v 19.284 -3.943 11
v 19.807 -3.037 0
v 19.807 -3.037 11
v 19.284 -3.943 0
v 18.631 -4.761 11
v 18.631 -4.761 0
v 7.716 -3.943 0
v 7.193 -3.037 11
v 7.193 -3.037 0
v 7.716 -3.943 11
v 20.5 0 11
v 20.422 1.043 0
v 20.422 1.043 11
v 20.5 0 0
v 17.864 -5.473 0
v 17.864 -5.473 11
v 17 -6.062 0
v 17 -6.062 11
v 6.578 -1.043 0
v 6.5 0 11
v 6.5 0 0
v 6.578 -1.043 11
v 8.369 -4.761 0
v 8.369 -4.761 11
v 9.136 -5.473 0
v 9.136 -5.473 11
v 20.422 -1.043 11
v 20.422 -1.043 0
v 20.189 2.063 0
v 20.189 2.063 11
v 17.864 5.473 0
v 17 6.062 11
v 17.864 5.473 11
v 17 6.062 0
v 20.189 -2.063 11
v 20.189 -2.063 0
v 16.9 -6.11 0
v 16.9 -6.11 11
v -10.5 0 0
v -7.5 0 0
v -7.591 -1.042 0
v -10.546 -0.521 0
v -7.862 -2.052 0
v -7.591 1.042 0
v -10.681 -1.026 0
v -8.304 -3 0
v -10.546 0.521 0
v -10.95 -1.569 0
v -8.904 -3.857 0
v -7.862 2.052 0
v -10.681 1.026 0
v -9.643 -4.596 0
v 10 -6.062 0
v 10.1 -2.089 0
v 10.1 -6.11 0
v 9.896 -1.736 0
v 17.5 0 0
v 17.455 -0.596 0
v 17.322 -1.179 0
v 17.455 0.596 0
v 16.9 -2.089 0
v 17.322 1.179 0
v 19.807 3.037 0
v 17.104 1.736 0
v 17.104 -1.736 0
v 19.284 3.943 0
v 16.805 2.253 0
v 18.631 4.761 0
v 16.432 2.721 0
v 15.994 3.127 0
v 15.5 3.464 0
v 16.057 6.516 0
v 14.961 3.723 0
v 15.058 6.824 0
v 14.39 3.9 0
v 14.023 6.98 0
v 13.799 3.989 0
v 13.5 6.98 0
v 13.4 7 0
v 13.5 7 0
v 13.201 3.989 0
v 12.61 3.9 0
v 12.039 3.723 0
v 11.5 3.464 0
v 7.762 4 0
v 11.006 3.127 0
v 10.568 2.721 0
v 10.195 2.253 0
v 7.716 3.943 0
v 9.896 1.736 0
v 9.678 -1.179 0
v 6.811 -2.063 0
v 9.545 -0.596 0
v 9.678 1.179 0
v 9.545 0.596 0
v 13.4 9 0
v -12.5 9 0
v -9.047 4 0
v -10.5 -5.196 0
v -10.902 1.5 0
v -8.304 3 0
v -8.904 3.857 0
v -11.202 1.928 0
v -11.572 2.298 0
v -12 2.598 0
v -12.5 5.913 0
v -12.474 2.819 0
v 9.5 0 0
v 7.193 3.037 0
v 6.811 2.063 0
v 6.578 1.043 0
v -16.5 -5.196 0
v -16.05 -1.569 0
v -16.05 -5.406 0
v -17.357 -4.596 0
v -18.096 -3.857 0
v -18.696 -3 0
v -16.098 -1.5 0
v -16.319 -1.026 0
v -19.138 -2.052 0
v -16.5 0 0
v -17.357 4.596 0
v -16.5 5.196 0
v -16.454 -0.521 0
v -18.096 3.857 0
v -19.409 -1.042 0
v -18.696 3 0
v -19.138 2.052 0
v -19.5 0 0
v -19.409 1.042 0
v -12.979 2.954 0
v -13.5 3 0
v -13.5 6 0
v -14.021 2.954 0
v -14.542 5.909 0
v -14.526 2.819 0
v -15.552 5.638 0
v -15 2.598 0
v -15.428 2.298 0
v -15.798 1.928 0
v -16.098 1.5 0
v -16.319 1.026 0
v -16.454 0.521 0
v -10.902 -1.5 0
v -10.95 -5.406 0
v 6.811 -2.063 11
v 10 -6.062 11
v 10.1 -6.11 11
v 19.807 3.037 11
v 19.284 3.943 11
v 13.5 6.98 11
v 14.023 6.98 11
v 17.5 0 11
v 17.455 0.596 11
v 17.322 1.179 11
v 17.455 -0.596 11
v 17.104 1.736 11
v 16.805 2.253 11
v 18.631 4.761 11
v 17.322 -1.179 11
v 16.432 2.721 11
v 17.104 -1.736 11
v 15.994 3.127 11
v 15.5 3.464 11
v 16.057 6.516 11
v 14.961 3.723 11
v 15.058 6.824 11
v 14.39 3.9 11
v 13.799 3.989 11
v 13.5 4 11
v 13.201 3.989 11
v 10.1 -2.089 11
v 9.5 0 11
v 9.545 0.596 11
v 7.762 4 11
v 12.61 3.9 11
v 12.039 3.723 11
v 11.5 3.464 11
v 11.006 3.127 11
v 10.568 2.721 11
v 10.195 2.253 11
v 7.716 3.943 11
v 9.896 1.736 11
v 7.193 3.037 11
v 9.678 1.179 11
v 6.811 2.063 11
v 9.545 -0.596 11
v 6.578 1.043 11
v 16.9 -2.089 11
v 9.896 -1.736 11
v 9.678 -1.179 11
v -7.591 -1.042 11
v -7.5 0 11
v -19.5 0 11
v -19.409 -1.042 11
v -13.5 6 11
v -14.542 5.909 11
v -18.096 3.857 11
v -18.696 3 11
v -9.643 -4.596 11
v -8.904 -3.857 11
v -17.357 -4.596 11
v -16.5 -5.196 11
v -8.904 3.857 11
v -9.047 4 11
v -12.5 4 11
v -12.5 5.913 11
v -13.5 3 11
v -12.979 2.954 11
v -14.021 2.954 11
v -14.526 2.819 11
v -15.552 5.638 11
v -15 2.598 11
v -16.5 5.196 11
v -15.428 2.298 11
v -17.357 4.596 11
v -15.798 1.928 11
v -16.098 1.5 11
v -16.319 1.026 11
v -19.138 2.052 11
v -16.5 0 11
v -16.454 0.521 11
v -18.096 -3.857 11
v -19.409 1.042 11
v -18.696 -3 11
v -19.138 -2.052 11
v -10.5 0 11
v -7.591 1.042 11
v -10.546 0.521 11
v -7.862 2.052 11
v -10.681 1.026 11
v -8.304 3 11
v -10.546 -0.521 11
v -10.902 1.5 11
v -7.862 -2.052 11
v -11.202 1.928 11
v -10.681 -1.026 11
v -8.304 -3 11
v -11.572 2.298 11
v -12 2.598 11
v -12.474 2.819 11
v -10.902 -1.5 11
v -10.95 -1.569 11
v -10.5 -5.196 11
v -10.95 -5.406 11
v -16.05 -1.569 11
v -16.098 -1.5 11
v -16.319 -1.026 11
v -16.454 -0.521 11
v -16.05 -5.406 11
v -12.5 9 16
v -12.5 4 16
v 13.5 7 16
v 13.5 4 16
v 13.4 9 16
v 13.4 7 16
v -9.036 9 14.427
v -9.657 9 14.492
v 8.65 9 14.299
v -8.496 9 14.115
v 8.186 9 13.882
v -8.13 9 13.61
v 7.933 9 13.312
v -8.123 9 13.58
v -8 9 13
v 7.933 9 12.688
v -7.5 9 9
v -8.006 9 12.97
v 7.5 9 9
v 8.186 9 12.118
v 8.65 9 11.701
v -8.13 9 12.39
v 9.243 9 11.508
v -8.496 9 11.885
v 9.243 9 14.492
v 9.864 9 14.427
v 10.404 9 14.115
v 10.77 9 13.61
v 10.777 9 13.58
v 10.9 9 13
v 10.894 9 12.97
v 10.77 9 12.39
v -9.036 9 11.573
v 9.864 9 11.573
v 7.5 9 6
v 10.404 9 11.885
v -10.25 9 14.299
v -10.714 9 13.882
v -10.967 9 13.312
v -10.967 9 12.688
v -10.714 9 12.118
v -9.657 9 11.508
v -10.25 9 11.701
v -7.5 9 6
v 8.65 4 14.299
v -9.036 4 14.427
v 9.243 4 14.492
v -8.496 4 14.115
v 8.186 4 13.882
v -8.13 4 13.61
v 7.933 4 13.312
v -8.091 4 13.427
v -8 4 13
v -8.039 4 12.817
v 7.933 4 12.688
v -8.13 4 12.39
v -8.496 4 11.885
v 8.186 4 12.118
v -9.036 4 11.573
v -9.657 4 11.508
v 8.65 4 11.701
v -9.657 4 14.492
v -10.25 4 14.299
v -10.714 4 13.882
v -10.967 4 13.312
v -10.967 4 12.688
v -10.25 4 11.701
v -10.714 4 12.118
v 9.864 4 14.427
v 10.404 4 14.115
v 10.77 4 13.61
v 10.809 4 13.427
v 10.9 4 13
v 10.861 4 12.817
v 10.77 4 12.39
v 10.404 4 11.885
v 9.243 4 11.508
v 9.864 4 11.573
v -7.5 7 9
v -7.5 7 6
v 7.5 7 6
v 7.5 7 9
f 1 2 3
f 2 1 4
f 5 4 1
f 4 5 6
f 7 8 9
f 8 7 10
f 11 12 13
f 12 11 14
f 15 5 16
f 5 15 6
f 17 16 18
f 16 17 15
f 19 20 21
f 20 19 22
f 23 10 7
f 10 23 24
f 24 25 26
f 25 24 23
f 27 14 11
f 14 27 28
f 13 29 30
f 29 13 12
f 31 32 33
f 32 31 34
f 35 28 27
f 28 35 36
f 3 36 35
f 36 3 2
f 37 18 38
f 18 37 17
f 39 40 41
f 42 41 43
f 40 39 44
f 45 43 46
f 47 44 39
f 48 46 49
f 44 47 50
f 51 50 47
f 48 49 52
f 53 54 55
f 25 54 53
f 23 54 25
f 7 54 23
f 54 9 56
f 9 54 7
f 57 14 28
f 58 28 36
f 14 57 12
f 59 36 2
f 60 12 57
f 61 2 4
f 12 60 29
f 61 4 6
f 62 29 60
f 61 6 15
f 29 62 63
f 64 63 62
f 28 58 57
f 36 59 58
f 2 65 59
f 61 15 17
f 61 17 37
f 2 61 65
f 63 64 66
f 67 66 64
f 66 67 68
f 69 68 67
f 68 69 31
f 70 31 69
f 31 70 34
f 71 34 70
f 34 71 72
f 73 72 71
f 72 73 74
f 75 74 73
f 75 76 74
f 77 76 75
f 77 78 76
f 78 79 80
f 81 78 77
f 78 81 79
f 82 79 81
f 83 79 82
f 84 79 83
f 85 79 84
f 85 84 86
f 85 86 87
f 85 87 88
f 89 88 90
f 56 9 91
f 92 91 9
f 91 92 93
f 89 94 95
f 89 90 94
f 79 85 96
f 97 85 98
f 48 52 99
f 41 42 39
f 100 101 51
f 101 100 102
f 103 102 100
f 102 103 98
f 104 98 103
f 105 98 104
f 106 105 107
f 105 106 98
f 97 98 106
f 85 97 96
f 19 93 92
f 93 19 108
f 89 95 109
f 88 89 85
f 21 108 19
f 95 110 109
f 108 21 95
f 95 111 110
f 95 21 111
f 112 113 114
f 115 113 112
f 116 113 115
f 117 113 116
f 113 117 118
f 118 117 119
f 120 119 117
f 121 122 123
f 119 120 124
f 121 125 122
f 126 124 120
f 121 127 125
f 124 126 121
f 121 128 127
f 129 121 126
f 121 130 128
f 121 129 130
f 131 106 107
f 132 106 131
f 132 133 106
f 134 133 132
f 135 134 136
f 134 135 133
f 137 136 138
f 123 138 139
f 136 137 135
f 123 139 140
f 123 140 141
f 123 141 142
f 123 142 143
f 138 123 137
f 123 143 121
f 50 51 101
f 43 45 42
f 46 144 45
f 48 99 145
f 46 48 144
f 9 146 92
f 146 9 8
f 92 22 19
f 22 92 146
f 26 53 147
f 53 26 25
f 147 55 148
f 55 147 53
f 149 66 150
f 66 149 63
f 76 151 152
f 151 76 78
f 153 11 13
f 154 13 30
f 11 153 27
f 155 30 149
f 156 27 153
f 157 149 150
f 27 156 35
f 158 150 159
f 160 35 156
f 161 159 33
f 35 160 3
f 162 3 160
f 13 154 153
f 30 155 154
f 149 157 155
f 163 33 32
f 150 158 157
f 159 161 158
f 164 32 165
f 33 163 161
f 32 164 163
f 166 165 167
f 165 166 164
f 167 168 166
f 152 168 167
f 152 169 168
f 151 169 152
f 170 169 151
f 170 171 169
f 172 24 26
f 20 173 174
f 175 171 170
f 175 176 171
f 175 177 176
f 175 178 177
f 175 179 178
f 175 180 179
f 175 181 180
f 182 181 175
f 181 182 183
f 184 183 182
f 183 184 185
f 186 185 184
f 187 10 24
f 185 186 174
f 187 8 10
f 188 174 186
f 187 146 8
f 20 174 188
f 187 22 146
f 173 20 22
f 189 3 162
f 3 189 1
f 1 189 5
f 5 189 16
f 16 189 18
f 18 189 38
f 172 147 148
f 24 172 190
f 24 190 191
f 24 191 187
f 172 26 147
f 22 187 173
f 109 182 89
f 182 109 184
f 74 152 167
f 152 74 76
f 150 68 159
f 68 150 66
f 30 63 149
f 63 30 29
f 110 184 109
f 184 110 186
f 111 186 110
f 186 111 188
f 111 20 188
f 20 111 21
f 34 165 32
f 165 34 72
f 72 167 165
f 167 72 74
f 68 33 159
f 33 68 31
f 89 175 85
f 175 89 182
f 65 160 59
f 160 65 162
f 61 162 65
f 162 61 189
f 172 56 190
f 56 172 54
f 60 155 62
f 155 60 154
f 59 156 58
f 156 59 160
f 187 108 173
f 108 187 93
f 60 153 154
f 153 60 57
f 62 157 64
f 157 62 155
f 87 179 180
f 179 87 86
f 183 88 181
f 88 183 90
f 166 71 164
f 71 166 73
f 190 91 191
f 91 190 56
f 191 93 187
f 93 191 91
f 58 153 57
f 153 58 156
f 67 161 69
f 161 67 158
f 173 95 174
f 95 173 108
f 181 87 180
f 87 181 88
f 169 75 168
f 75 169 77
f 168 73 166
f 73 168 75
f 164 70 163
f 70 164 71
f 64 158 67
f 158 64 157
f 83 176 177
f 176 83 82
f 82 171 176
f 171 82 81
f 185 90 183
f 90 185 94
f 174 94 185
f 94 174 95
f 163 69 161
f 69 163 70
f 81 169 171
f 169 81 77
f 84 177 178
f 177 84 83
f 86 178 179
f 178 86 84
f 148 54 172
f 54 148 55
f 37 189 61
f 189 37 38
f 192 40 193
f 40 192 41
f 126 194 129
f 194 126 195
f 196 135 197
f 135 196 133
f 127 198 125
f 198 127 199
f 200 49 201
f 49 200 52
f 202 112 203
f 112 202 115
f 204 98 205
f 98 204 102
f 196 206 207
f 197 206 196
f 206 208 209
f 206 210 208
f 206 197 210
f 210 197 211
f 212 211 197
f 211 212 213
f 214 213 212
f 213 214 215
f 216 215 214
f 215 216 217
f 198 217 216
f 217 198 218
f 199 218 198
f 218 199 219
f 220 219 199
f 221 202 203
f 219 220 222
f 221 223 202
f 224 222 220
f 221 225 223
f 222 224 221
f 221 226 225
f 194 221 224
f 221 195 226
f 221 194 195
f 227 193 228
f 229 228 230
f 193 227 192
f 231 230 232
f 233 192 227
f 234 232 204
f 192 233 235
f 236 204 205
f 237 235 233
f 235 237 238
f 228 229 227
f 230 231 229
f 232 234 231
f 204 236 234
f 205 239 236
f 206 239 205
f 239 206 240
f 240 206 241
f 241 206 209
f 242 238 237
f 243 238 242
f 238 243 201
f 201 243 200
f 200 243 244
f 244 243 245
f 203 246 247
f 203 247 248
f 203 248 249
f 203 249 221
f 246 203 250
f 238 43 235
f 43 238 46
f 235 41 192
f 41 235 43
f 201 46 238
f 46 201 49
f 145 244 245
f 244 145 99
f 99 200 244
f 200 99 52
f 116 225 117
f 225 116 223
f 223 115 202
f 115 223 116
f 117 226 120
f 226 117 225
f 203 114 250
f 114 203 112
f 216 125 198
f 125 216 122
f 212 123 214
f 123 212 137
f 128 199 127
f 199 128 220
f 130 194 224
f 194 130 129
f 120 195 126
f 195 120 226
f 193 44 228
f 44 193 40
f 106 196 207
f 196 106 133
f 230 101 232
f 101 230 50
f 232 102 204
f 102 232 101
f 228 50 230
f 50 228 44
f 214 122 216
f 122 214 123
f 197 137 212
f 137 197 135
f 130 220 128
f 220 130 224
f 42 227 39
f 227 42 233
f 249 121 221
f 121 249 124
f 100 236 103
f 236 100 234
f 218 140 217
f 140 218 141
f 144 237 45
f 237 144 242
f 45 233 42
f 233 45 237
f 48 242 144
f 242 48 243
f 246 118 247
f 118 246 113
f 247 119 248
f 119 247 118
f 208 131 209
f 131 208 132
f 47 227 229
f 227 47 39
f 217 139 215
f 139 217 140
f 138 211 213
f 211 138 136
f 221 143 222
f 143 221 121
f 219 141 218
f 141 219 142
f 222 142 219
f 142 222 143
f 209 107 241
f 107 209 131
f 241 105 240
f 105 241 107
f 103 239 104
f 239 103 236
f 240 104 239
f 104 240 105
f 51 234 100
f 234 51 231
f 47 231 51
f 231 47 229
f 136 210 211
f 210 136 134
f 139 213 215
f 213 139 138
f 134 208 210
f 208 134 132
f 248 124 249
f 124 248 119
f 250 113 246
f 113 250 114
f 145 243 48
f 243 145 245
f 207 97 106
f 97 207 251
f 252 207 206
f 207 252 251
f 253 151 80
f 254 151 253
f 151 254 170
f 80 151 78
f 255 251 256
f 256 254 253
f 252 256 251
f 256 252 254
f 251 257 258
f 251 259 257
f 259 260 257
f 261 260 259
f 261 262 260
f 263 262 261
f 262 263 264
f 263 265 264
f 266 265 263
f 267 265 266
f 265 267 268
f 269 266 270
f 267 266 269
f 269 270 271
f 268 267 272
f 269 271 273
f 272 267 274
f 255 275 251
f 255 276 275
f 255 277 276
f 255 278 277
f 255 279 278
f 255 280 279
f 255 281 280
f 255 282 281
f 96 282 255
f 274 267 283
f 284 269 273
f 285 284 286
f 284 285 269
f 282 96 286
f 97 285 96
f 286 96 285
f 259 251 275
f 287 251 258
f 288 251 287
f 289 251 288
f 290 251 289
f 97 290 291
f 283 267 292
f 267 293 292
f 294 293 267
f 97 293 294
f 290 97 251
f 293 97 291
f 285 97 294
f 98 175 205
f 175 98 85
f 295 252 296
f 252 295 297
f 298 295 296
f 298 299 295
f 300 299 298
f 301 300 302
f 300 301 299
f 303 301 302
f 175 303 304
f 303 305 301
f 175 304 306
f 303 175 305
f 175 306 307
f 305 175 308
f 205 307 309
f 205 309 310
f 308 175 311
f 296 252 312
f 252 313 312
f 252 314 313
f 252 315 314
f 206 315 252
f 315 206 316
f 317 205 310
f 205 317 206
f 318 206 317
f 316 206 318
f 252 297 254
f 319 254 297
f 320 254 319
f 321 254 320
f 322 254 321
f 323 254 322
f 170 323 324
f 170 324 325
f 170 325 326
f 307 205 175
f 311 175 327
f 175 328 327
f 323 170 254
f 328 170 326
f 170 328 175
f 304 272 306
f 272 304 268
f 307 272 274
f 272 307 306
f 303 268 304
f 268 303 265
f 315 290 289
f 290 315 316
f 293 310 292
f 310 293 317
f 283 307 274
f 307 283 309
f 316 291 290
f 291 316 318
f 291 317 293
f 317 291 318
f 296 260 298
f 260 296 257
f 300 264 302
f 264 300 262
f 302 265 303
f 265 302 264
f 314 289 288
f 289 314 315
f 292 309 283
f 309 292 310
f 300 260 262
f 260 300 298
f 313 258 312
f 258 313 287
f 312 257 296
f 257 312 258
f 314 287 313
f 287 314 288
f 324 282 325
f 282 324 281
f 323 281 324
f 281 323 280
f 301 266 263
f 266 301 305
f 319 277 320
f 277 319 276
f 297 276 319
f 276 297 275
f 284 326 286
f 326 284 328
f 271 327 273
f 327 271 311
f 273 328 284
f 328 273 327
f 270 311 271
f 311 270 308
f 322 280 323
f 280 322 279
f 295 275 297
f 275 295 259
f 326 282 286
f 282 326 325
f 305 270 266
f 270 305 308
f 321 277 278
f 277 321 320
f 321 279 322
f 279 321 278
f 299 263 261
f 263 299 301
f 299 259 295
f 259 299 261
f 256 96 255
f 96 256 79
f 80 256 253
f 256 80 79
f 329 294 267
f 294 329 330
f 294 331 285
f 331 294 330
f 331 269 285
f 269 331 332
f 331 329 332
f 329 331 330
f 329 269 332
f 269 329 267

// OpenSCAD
rod_d1=8;
rod_d2=6;
rod_spacing=27;
mount_hole_spacing=18.9;
mount_hole_d=3;
mount_nut_d=6.5;
// How much to lift stop mount
stop_offset=0;
nut=6;
thick=16;
wall=2;
mount_plate_width=mount_hole_d+wall;
mount_plate_length=rod_spacing-1;

module mount(){
difference() {
    union() {
        translate([rod_spacing/2, 0, 5]) rod_snap(rod_d1, rod_d1+wall*3, thick-5);
        translate([-rod_spacing/2, 0, 5]) rod_snap(rod_d2, rod_d2+wall*3, thick-5);
        translate([-rod_spacing/2+1,-mount_plate_width-rod_d1/2,0]) cube([mount_plate_length, mount_plate_width, thick]);
    }
    translate([2.5+2+1, 0, 0]){
        // Mounting holes
        translate([-20+5, 0, 3]) rotate([90, 0, 0]) cylinder(d=mount_hole_d, h=20, center=true, $fn=15);
        translate([-20+5+mount_hole_spacing, 0, 3]) rotate([90, 0, 0]) cylinder(d=mount_hole_d, h=20, center=true, $fn=15);
        // Space for the welds
        translate([-20+5+mount_hole_spacing+4, -9, 0]) cube([3, 2, thick]);
        translate([-20+5+2, -9, 7]) cube([15, 2, 3]);
    }
}
}

module rod_snap(id, od, h) {
    difference() {
        cylinder(d=od, h=h, $fn=od*3);
        cylinder(d=id, h=h, $fn=od*3);
        translate([-id*0.85/2, 0, 0]) cube([id*0.85, od, h]);
    }
}

translate([0, 0, 16]) rotate([180, 0, 0]) mount();
